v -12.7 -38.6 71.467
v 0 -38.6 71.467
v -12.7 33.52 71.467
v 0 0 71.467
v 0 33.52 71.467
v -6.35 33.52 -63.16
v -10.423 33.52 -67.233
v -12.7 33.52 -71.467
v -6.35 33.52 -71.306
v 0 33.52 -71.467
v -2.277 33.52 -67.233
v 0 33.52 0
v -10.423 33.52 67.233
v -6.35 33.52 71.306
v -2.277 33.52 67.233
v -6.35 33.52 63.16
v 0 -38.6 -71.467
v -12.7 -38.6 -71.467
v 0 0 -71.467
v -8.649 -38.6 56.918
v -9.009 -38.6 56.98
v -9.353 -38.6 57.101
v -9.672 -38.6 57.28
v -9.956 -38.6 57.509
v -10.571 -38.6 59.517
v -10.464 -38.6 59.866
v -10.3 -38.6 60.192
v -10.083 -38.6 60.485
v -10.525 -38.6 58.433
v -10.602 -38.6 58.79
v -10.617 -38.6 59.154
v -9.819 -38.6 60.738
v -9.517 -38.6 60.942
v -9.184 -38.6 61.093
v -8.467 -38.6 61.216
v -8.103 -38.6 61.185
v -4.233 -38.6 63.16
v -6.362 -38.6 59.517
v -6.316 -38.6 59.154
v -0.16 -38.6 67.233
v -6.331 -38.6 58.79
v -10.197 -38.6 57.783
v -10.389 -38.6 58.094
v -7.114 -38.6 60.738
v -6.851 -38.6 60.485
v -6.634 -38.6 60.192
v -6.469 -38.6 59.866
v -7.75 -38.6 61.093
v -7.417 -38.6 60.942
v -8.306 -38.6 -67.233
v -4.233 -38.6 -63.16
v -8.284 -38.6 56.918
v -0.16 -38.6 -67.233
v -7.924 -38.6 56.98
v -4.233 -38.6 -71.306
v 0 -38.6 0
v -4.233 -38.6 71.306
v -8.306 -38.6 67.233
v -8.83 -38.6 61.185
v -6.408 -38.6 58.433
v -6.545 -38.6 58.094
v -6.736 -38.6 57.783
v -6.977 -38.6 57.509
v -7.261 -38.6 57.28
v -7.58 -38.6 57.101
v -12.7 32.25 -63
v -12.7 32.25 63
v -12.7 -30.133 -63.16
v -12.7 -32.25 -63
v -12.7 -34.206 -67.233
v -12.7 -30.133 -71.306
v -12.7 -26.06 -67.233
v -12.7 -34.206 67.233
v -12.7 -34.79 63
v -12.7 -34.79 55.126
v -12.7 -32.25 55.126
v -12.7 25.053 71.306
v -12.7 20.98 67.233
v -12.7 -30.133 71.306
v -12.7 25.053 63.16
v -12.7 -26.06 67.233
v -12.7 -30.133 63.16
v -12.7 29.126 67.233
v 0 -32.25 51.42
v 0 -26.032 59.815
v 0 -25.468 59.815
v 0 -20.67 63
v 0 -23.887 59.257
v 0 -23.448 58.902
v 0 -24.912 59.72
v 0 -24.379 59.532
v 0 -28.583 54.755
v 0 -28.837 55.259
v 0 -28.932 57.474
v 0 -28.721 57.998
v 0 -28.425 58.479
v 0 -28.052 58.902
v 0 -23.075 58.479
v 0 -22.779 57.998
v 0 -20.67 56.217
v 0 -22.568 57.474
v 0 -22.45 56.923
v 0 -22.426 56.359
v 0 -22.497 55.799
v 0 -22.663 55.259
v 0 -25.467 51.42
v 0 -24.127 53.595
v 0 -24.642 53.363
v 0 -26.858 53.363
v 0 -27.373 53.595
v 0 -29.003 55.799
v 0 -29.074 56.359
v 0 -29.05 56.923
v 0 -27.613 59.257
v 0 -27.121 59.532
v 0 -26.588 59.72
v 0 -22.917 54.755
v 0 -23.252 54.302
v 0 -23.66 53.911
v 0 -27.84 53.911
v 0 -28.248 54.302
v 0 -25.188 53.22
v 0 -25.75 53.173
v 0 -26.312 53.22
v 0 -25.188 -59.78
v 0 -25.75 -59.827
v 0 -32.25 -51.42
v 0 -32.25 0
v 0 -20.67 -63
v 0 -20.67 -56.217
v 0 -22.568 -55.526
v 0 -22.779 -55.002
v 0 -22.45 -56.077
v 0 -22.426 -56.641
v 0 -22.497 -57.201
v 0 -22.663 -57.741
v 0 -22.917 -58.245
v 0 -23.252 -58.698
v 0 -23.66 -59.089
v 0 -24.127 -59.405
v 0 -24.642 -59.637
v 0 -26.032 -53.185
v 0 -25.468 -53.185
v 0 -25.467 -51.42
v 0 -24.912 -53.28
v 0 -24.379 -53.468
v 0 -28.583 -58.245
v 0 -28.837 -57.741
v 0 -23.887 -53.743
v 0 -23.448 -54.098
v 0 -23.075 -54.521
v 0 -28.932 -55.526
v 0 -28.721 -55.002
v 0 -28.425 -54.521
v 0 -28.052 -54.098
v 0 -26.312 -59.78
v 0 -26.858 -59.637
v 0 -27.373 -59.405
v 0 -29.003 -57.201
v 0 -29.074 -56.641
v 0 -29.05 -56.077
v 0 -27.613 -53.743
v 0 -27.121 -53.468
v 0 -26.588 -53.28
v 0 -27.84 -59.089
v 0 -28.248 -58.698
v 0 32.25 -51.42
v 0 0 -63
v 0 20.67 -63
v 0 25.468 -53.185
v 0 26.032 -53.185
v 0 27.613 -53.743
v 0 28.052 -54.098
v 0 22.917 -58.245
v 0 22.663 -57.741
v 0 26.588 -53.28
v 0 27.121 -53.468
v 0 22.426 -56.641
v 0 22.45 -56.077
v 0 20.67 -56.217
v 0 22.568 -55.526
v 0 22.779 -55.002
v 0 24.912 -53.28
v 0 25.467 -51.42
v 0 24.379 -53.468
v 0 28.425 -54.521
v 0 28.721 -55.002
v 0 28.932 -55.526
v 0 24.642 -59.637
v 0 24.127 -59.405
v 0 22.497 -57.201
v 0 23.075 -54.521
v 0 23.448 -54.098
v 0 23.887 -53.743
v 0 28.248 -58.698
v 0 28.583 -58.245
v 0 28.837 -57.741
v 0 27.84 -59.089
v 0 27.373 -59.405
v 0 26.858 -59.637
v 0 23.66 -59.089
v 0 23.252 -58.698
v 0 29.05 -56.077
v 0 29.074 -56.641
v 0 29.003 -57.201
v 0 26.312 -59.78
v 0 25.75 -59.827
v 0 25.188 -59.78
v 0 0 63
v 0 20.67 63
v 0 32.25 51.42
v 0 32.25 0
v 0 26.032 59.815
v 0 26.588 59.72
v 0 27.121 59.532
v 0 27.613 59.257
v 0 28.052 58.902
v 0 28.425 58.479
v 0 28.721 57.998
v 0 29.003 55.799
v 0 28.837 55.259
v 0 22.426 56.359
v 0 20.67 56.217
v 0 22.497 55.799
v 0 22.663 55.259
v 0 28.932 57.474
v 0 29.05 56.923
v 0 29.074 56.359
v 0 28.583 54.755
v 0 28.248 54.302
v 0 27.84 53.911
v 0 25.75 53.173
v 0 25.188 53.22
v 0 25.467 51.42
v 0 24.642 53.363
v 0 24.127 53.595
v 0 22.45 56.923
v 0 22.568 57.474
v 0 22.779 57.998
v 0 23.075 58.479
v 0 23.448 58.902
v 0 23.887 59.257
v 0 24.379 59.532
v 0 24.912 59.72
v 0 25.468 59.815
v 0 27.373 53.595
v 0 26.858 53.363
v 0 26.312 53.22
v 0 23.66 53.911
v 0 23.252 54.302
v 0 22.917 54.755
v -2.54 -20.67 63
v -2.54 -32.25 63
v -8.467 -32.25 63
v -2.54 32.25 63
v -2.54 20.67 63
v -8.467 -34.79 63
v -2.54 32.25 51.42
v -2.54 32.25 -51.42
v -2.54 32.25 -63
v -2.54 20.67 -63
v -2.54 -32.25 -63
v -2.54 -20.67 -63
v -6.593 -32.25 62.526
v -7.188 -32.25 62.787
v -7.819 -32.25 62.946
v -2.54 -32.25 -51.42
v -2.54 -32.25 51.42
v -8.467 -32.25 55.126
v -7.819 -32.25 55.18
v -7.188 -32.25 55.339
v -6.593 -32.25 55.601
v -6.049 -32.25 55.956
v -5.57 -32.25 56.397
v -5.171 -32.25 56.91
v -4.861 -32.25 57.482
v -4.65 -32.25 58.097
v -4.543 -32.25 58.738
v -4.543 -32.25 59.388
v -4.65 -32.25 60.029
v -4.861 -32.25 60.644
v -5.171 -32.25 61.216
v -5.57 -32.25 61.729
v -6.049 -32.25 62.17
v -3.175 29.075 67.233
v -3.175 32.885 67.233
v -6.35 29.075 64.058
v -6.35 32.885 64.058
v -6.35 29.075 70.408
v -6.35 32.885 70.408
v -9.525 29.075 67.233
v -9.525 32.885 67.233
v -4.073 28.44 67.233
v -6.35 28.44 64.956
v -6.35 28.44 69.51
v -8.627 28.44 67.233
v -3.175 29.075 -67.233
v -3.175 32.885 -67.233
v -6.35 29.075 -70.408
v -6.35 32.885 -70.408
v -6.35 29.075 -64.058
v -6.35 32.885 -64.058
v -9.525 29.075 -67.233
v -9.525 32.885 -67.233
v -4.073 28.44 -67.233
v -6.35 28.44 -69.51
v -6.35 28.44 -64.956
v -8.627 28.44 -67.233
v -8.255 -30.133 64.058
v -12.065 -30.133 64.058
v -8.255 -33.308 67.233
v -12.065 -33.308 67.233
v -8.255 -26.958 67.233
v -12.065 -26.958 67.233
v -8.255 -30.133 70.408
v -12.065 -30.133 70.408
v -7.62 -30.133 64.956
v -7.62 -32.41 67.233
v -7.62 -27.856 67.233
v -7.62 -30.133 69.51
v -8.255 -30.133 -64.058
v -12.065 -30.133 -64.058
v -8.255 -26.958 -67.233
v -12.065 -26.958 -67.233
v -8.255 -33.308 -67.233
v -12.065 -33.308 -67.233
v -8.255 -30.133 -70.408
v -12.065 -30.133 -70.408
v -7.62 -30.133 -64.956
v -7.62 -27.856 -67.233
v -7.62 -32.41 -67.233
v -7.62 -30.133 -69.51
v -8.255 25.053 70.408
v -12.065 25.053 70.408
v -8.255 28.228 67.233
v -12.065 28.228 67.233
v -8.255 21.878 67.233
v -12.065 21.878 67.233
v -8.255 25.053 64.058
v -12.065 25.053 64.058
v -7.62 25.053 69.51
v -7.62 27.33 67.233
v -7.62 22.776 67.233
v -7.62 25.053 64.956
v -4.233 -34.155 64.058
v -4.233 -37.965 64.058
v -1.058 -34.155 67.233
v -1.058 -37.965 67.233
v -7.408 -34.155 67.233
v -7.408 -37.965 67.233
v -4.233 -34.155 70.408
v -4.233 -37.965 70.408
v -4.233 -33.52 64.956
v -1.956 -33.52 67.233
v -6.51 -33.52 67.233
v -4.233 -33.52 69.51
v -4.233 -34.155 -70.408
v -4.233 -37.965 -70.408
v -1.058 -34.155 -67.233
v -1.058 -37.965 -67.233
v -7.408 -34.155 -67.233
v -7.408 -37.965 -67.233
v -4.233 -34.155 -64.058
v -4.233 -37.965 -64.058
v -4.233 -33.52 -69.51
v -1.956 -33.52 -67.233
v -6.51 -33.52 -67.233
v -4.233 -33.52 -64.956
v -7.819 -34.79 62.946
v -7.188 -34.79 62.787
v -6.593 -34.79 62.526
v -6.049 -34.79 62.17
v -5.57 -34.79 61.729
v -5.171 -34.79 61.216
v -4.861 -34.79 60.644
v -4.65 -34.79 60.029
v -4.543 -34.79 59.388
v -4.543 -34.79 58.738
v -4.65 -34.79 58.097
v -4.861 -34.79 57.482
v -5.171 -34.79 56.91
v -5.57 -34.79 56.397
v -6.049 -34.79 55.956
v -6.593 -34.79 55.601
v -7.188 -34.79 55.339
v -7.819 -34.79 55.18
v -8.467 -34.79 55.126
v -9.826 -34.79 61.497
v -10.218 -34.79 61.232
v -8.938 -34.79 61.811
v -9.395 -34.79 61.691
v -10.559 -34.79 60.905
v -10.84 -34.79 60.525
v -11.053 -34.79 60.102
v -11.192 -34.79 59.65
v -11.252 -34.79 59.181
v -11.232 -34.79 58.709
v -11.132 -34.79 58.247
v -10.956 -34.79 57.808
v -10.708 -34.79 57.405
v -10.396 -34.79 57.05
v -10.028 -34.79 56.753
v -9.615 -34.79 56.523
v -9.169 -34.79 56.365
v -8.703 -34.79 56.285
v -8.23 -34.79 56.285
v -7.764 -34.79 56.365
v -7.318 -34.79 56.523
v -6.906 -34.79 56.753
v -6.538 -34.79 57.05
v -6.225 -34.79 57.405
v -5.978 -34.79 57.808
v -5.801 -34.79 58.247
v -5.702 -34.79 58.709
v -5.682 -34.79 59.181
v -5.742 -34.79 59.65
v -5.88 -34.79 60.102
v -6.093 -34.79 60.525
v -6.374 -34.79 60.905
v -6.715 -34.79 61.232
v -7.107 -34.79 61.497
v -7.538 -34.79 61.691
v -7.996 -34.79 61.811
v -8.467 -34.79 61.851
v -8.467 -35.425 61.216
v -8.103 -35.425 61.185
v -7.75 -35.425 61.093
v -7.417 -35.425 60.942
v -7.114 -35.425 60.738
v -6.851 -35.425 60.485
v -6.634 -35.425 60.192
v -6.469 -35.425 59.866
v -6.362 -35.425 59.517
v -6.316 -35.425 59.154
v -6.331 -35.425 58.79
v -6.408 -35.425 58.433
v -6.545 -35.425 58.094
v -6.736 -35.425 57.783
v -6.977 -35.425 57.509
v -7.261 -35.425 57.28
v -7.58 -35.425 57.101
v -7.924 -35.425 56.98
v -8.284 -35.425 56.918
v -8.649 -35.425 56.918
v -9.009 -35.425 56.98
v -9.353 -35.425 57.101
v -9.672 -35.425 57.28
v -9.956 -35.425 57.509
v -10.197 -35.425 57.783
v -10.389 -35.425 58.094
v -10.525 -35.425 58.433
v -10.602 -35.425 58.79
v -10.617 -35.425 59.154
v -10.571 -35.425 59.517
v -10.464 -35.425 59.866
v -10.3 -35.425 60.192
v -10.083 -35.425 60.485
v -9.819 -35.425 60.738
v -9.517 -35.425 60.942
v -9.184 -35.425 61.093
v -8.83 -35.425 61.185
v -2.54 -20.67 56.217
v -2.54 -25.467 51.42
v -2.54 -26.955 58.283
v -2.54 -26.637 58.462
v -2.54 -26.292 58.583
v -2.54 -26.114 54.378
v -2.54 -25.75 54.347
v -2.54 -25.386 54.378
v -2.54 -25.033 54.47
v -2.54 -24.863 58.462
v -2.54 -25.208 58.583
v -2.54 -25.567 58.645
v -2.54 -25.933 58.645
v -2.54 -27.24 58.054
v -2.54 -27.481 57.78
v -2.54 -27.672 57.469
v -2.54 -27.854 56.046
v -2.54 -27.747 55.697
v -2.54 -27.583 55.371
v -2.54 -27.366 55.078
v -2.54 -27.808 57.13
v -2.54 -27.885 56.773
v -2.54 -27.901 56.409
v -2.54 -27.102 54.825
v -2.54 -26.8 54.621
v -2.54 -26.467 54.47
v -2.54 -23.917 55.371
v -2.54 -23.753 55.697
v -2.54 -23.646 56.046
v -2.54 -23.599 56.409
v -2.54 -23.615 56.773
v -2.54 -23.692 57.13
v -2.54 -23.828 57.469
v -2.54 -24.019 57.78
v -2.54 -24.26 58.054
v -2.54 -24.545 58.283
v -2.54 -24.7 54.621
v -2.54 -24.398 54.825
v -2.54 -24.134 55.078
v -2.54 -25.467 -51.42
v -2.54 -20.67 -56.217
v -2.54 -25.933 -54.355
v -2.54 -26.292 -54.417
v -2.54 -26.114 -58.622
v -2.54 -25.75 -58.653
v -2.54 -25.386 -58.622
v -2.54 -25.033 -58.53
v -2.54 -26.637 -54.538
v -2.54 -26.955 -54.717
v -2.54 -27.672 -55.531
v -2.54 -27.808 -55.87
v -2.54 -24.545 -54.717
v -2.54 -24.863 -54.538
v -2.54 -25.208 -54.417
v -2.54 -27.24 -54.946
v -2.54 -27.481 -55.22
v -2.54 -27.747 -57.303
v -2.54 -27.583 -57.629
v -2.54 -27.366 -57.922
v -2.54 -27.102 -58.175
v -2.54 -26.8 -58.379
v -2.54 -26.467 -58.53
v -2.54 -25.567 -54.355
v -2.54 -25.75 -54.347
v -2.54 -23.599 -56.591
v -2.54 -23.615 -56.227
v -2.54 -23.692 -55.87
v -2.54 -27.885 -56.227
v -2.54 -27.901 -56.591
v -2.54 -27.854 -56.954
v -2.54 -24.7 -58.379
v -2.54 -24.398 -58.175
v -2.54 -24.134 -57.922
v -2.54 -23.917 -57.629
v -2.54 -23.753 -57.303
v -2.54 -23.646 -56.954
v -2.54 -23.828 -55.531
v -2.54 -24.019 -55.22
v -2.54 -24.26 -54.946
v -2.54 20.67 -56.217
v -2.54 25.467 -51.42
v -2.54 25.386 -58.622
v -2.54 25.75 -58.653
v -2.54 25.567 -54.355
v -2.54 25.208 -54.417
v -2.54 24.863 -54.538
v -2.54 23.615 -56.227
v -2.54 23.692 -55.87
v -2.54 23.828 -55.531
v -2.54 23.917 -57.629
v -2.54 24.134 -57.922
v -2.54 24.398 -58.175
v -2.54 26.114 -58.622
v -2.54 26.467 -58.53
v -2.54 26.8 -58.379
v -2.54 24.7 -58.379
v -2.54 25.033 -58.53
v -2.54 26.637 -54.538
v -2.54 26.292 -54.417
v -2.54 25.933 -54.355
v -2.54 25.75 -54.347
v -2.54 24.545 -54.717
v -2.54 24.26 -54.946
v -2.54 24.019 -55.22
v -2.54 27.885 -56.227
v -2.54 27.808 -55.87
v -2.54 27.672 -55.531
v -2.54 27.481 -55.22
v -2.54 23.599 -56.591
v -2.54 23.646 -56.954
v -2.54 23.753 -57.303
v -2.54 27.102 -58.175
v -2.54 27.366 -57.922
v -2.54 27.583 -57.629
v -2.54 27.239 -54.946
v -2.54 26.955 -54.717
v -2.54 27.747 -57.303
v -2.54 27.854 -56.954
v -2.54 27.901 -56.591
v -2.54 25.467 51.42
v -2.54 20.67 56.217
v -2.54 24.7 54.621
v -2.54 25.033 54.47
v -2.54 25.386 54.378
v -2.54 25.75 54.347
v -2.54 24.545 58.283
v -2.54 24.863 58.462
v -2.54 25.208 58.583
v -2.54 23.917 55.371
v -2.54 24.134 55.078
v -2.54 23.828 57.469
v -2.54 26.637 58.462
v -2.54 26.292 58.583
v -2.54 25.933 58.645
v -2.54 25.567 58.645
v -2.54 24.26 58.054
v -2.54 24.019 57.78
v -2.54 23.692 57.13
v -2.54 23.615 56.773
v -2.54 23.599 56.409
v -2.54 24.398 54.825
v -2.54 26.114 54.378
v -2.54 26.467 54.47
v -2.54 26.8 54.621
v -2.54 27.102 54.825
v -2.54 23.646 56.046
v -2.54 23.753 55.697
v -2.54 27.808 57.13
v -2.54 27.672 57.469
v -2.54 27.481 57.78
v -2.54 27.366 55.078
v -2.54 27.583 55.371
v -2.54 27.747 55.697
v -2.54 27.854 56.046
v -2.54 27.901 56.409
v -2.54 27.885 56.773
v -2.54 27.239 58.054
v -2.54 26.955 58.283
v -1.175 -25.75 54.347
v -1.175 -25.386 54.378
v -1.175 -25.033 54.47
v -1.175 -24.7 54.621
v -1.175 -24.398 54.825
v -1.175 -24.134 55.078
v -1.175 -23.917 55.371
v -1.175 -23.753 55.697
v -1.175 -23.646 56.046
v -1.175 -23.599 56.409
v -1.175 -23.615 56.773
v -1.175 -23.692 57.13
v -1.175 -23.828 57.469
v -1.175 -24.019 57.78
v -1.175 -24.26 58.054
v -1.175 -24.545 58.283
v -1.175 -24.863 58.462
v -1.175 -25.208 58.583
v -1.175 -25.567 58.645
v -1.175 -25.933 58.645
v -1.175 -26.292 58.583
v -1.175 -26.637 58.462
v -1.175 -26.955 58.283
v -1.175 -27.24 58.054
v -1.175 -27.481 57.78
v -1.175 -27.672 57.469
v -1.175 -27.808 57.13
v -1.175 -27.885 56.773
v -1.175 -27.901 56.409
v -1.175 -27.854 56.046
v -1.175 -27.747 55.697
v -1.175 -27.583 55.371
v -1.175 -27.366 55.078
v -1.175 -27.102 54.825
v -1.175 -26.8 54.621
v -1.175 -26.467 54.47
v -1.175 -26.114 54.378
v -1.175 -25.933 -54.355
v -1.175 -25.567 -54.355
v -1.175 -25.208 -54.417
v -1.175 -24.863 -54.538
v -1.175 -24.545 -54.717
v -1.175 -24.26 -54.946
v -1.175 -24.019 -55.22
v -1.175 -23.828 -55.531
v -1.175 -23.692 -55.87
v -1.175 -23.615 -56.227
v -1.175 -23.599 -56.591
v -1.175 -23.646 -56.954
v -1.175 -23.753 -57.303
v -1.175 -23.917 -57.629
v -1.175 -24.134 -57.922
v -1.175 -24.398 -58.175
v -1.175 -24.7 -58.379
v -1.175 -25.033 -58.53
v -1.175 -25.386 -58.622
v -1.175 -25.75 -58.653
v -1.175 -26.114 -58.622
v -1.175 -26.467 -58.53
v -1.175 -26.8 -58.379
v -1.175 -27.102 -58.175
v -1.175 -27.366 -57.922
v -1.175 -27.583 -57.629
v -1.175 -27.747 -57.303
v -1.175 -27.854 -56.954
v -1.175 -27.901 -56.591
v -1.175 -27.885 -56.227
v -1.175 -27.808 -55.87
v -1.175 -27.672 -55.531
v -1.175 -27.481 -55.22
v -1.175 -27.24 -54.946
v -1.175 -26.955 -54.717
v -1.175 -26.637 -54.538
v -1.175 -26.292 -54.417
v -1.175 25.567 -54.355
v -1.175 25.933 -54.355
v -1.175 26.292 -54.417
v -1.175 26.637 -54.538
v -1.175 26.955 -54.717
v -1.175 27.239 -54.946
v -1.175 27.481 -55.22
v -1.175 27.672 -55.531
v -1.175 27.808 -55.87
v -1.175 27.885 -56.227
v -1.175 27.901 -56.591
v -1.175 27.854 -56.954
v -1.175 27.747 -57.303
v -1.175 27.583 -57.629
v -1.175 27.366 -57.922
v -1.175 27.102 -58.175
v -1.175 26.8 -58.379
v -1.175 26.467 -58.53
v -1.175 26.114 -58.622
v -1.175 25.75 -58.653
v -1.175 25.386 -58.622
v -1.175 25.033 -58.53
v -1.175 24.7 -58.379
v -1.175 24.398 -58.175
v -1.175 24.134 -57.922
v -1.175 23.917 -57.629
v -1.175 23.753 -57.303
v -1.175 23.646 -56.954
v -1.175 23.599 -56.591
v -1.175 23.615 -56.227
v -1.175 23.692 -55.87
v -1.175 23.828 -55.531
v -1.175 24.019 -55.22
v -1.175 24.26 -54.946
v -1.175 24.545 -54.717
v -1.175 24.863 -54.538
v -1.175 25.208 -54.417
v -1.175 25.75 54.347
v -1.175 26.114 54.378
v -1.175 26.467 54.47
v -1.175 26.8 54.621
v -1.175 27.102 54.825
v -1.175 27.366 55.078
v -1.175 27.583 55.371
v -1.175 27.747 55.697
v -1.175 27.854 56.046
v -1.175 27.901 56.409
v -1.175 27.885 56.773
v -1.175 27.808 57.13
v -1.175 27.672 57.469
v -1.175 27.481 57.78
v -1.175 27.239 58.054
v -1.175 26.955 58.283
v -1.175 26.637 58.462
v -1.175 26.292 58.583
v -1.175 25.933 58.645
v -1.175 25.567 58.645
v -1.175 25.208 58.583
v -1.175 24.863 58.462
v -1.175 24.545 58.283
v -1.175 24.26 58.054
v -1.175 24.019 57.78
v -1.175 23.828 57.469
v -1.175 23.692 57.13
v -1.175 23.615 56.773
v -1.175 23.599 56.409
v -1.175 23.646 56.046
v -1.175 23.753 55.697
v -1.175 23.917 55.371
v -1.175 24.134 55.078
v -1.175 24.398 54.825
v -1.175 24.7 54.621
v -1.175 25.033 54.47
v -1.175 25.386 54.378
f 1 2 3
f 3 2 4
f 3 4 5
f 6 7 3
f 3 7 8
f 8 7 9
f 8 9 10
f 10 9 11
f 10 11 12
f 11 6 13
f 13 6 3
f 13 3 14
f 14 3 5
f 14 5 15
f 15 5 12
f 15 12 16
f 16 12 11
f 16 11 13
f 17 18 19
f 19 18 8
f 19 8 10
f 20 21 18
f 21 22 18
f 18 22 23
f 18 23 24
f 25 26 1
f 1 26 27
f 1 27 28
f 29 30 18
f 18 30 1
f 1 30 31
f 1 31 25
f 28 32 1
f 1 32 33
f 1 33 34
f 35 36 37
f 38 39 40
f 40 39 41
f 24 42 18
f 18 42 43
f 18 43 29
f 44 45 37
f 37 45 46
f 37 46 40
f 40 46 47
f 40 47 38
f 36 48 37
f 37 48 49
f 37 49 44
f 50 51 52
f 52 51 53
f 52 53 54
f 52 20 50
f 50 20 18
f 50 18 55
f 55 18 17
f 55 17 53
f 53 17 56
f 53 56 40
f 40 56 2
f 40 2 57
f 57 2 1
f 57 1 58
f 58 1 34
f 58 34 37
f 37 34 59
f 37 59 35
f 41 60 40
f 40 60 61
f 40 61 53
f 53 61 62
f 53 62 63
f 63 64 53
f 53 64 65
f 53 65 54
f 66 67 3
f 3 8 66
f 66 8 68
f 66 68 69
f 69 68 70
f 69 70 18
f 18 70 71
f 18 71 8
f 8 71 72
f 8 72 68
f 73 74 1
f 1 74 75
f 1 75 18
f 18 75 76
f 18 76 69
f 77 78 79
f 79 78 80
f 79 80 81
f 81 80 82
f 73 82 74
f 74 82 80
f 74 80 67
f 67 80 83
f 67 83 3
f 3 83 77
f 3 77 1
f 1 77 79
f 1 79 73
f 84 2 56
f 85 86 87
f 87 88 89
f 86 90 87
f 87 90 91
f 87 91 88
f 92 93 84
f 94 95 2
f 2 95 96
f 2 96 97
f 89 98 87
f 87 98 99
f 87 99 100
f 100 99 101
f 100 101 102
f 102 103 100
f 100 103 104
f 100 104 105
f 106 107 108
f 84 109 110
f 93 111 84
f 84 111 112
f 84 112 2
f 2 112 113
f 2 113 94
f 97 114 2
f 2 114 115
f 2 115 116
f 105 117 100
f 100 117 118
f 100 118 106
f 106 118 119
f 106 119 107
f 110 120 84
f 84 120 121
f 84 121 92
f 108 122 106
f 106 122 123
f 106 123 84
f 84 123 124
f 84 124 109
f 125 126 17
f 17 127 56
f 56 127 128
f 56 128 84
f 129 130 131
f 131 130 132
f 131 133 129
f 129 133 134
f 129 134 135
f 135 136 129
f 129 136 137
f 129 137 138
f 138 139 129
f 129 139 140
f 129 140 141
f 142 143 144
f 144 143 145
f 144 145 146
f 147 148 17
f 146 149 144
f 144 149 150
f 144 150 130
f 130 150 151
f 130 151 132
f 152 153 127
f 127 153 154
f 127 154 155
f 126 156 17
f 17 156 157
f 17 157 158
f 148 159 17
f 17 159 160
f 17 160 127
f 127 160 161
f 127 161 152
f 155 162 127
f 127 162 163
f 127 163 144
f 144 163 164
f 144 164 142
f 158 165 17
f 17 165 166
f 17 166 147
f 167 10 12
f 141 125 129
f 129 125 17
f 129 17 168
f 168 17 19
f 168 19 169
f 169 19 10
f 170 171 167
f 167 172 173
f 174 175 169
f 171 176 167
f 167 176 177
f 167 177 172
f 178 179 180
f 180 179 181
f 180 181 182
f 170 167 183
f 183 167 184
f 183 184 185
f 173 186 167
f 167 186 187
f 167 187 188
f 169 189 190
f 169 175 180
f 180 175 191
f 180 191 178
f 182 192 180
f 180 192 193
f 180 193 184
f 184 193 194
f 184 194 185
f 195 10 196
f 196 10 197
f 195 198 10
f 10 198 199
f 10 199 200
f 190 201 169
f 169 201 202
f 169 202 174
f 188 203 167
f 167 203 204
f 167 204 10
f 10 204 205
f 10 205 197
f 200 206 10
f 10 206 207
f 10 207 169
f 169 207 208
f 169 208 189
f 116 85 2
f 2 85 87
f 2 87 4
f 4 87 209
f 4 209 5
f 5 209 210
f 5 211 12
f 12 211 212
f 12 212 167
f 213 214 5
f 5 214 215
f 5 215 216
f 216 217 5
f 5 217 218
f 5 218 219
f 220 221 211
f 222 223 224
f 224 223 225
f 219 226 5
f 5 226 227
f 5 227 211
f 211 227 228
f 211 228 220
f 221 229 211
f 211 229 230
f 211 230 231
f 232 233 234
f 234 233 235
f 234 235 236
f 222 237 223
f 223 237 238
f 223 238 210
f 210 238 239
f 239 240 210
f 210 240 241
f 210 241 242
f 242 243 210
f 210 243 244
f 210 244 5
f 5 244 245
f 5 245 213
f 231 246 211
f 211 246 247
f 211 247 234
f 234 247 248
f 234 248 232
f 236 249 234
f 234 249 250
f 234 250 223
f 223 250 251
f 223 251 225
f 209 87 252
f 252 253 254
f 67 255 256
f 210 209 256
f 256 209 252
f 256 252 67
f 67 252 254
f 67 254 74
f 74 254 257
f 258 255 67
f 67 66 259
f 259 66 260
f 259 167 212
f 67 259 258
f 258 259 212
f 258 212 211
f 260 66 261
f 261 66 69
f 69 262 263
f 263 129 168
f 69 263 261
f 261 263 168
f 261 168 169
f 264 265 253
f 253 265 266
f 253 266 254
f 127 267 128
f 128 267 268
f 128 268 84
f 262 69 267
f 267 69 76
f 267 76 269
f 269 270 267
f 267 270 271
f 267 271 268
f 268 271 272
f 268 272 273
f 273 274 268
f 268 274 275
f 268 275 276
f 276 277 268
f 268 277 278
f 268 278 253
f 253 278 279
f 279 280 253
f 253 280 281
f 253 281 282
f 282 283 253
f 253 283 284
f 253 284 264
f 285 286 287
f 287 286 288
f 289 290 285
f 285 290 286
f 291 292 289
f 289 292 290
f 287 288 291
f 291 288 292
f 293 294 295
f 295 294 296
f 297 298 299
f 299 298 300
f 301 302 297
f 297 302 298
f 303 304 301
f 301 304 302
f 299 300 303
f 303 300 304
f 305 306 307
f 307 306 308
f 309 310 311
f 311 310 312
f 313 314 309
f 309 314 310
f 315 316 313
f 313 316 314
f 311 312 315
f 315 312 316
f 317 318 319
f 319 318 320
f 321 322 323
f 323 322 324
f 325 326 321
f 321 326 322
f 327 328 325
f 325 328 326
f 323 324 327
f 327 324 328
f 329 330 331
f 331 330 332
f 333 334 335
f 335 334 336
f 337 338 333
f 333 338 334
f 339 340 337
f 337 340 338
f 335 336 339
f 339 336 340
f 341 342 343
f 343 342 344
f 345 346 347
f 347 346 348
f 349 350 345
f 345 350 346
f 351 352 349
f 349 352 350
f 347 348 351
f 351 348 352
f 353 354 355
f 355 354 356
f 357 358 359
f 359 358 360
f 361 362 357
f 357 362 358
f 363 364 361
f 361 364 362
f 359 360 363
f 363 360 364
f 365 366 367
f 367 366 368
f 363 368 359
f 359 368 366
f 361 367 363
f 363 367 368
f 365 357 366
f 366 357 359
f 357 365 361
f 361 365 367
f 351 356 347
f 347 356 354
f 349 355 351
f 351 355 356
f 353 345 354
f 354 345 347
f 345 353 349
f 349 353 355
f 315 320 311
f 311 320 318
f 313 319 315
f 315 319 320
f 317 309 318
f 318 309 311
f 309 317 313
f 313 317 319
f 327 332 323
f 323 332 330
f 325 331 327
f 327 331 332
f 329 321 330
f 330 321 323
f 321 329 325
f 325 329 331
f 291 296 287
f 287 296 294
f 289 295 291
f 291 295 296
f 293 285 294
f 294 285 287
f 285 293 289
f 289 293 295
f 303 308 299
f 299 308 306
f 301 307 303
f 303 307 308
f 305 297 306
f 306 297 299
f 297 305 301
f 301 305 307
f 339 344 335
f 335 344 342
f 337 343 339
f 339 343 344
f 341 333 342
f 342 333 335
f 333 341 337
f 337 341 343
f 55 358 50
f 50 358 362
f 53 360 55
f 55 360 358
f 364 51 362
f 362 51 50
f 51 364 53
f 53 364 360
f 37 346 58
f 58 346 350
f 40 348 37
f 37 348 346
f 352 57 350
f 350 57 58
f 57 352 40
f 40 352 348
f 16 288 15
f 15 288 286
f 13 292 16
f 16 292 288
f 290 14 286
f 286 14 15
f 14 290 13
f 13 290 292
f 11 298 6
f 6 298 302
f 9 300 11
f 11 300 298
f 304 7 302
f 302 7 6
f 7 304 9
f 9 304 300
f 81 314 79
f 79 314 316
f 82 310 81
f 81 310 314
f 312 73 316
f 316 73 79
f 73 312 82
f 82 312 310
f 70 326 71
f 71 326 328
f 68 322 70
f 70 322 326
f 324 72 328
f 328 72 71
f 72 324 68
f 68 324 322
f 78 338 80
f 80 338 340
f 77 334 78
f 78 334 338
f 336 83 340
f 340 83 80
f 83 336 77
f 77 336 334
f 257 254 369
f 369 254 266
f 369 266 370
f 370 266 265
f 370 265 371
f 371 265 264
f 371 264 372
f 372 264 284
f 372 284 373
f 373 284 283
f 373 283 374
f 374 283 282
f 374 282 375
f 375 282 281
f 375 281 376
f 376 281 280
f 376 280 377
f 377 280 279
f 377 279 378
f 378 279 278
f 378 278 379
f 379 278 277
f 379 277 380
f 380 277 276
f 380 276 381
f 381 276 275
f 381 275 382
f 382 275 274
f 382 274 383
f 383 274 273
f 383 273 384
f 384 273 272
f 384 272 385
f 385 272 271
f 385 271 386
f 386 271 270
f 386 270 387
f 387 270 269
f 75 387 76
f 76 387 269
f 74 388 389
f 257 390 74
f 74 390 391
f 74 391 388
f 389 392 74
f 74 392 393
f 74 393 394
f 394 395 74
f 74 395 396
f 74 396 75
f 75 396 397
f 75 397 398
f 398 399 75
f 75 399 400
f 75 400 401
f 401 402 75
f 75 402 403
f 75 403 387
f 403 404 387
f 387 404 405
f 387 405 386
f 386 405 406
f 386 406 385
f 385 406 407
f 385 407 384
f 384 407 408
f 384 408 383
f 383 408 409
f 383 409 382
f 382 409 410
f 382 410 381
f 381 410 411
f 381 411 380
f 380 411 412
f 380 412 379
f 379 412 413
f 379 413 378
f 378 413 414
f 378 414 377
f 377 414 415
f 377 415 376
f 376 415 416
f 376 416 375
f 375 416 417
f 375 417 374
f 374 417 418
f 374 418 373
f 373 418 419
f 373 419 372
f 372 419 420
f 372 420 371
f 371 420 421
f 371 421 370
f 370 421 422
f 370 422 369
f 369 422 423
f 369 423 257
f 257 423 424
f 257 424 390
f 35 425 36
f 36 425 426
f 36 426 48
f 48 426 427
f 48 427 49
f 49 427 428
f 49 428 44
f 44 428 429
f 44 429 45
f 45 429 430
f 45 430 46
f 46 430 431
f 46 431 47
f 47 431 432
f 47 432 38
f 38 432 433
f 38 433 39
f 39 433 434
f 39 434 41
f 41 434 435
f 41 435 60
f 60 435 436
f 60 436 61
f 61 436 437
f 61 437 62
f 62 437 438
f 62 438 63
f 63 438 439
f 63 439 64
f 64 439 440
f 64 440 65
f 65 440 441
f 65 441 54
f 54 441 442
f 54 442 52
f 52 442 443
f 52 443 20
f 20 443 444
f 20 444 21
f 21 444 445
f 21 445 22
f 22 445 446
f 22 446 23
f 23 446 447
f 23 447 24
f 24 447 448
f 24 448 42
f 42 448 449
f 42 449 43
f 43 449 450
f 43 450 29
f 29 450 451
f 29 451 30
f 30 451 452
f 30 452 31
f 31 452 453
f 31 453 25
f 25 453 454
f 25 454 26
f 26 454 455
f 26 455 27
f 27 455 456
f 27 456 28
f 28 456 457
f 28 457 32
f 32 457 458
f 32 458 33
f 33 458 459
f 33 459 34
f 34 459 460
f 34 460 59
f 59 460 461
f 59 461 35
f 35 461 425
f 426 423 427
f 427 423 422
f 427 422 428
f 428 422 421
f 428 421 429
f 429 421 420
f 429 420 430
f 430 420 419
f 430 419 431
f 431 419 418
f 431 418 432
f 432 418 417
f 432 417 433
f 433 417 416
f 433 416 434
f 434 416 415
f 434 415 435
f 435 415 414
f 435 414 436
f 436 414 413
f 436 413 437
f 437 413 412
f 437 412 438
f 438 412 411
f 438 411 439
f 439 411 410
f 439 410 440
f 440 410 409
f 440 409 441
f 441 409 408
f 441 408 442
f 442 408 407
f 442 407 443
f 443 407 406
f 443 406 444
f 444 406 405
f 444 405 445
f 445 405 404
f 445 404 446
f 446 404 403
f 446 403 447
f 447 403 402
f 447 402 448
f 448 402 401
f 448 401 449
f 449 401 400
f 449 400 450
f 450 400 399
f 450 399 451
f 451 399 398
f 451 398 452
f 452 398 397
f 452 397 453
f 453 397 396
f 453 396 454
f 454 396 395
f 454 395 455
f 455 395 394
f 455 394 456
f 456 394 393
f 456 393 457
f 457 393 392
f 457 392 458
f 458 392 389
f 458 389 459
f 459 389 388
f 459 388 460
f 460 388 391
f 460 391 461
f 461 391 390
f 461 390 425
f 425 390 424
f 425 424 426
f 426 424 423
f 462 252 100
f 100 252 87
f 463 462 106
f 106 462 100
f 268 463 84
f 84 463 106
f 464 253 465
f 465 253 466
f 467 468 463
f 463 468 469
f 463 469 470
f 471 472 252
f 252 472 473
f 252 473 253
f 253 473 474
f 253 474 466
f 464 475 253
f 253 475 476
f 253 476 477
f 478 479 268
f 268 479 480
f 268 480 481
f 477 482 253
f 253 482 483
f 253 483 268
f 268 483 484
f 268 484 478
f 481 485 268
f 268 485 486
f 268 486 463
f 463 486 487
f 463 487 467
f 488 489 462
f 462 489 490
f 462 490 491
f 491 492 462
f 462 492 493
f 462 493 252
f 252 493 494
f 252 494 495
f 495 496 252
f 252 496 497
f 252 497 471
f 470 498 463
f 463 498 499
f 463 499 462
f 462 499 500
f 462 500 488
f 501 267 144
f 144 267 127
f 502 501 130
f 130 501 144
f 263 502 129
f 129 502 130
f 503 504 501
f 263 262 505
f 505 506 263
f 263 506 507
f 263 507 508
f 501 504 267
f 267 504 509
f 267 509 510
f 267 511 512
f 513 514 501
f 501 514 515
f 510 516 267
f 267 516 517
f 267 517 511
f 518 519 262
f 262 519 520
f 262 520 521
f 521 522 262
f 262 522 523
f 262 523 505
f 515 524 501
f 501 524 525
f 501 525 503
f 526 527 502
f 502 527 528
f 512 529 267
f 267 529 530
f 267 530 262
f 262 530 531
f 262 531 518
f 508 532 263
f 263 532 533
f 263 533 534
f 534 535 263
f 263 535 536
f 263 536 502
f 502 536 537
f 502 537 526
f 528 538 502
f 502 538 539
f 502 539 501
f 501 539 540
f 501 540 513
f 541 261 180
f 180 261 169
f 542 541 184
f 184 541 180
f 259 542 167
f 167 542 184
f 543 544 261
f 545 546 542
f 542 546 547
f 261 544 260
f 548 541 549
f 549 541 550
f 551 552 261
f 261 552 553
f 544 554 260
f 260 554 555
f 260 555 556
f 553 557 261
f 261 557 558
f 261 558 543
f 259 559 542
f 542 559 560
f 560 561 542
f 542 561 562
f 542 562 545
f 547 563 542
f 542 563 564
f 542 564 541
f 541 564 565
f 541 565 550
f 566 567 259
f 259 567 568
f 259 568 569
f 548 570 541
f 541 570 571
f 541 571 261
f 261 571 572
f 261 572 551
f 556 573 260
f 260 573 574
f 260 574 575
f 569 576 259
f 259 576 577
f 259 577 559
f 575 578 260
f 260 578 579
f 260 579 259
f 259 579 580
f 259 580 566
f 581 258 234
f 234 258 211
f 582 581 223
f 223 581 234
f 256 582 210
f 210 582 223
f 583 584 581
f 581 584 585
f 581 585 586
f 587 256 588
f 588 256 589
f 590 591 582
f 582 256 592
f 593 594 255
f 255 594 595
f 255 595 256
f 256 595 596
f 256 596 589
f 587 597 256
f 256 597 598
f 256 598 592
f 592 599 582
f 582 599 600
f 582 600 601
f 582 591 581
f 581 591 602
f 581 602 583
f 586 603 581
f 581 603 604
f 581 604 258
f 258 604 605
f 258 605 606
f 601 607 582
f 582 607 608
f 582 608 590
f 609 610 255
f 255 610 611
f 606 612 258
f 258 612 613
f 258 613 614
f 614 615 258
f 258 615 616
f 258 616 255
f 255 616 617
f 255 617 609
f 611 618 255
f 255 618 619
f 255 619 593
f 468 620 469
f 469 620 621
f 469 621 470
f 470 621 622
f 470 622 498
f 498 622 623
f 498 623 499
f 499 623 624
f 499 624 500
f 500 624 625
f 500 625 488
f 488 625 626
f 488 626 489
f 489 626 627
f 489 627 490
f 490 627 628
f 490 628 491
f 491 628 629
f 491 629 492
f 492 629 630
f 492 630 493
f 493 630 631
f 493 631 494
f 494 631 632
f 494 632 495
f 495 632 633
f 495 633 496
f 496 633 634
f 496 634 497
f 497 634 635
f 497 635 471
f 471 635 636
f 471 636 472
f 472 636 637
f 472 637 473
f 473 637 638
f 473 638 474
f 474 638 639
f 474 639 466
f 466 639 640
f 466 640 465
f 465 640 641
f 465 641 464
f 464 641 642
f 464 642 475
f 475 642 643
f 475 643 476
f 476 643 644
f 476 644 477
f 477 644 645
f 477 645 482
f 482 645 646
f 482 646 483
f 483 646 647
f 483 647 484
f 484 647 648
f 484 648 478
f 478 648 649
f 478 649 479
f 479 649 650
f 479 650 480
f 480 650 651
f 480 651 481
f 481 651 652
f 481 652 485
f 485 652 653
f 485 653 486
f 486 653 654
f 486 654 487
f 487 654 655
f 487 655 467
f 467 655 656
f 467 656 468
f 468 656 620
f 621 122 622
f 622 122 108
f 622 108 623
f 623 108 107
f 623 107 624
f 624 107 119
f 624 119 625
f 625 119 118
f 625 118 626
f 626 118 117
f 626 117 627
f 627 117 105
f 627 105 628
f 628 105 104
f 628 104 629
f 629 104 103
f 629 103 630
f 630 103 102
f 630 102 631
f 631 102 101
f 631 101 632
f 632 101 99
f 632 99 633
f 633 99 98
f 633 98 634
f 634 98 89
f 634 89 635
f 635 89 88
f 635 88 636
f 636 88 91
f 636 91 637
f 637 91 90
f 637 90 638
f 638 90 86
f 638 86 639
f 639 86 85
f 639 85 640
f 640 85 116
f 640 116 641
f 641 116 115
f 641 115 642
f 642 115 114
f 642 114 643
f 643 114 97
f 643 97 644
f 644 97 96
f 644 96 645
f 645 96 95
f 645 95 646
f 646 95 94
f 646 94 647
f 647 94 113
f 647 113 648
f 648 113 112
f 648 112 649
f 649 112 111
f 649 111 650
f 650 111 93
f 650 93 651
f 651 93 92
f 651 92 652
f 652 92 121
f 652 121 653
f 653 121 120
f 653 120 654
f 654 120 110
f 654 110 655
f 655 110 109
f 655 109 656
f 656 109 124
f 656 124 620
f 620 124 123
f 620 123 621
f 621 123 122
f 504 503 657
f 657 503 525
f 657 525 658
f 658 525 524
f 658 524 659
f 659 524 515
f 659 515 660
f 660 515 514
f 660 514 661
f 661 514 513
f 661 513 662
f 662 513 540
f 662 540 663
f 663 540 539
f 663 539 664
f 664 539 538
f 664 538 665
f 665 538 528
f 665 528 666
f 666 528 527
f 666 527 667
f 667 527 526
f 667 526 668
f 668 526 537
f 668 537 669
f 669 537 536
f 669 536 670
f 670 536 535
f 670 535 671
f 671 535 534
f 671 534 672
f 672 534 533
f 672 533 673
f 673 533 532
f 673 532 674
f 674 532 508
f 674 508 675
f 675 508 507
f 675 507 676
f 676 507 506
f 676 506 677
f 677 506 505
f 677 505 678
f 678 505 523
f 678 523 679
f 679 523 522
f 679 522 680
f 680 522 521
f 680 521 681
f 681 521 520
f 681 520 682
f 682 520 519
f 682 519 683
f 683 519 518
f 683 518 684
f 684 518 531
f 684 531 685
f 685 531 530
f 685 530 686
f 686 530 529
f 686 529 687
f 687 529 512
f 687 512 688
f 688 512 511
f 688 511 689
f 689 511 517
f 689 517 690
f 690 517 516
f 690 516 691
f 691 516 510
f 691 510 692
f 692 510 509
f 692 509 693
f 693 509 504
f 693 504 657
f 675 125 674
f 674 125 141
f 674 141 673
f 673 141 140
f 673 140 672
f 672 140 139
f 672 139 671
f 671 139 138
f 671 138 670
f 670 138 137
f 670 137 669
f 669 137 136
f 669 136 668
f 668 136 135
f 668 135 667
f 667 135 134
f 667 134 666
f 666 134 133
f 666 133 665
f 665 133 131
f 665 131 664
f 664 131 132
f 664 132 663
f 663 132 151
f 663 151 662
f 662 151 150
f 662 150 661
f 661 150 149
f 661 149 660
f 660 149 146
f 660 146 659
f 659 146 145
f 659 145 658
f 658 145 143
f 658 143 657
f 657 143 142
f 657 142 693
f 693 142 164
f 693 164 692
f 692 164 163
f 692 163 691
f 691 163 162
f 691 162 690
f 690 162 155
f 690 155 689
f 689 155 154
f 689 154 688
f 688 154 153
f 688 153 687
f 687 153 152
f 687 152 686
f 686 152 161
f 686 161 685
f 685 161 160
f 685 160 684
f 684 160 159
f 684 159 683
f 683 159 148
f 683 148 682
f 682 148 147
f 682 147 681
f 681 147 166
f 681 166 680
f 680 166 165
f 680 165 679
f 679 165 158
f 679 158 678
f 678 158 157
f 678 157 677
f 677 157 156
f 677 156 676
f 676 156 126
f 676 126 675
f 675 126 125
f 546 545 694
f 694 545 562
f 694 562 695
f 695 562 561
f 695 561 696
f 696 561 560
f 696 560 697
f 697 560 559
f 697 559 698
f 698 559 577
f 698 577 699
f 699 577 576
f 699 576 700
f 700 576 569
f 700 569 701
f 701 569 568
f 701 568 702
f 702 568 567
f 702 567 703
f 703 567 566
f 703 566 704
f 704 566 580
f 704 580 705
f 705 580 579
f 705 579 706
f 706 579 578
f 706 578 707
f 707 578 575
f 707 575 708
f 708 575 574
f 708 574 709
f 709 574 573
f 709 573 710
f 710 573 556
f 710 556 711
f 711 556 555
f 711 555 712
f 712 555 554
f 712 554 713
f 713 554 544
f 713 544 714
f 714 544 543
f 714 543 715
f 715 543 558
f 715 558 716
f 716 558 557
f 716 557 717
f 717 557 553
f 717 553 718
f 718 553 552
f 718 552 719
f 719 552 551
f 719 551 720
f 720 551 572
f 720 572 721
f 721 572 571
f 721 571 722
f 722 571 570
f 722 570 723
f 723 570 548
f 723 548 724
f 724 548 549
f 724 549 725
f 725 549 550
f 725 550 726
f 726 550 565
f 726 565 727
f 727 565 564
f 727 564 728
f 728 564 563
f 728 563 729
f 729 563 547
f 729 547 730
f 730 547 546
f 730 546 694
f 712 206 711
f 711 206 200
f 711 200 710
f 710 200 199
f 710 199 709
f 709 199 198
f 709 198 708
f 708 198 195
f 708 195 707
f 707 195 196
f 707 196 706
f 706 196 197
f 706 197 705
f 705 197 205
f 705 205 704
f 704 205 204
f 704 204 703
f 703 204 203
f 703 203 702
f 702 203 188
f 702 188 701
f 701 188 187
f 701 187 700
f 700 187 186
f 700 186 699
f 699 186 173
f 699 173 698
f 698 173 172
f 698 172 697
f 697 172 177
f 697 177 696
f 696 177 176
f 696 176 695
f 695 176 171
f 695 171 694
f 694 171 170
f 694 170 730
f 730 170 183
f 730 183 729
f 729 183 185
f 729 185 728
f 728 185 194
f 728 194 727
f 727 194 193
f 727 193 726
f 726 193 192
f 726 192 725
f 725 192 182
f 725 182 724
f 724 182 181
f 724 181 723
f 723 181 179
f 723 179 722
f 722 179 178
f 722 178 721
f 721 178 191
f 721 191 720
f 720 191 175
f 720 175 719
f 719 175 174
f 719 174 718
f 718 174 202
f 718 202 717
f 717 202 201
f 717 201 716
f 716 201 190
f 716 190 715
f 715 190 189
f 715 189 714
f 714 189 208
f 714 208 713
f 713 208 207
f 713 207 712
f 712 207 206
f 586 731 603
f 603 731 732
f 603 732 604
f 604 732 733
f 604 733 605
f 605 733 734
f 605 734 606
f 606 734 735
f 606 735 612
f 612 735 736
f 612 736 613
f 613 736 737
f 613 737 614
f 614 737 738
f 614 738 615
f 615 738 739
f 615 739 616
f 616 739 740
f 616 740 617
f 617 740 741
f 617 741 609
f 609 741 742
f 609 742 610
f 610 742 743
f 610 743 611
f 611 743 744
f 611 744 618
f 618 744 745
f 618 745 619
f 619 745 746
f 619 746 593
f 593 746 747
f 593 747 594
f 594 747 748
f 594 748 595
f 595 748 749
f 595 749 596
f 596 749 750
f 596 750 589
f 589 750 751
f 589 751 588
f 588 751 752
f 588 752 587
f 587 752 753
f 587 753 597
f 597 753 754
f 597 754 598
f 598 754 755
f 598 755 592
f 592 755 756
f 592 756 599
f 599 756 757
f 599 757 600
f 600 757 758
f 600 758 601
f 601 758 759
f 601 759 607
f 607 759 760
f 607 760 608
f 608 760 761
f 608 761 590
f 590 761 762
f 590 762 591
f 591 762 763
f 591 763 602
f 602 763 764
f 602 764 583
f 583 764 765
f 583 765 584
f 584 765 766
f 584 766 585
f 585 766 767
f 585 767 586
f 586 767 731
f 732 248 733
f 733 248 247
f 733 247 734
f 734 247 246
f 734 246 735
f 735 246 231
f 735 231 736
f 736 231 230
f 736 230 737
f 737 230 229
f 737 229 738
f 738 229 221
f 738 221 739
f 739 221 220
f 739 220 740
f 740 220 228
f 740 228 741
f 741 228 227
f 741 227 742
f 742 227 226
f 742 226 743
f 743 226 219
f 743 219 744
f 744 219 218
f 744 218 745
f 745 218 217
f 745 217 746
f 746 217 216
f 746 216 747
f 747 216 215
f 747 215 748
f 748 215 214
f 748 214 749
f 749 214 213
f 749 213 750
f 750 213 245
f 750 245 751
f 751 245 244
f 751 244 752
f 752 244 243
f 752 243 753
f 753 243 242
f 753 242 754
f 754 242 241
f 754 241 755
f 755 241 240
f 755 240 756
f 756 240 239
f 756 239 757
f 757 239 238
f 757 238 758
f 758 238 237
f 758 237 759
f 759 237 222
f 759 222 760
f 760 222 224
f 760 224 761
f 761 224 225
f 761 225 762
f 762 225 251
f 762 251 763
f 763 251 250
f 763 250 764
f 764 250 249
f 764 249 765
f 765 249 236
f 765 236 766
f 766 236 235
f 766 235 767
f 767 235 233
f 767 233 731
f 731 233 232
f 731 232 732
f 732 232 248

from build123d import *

# Parameters (mm, degrees)
SKETCH1_W                              = 142.9333456
SKETCH1_H                              = 72.120000116
SKETCH1_W_2                            = 126.000012266
SKETCH1_H_2                            = 64.500000116
BOSS_EXTRUDE1_DEPTH                    = 12.7
CUT_EXTRUDE1_DEPTH                     = 5.08
CUT_EXTRUDE2_DEPTH                     = 5.08
CUT_EXTRUDE3_DEPTH                     = 5.08
CHAMFER1_SIZE                          = 0.635
CUT_EXTRUDE4_DEPTH                     = 2.54
F_18_0_1695_DIAMETER_HOLE1_D           = 4.3053
F_18_0_1695_DIAMETER_HOLE1_DEPTH       = 3.81
F_18_0_1695_DIAMETER_HOLE1_CSINK_D     = 5.5753
F_18_0_1695_DIAMETER_HOLE1_CSINK_ANGLE = 90
BOSS_EXTRUDE2_DEPTH                    = 2.54
F_6_CLEARANCE_HOLE1_D                  = 4.3053
F_6_CLEARANCE_HOLE1_CSINK_D            = 6.6548
F_6_CLEARANCE_HOLE1_CSINK_ANGLE        = 90


with BuildPart() as part:
    # Sketch1 → Boss-Extrude1 (new body)
    with BuildSketch(Plane(origin=(0, 0, 0), x_dir=(0, 0, -1), z_dir=(1, 0, 0))):
        with Locations((0, -2.54)):
            Rectangle(SKETCH1_W, SKETCH1_H)
        Rectangle(SKETCH1_W_2, SKETCH1_H_2, mode=Mode.SUBTRACT)
    extrude(amount=-BOSS_EXTRUDE1_DEPTH)

    # Sketch2 → Cut-Extrude1 (cut)
    with BuildSketch(Plane(origin=(0, 33.520000058, 0), x_dir=(1, 0, 0), z_dir=(0, 1, 0))):
        Polygon((-3.175, 67.233339467), (-6.35, 64.058339467), (-9.525, 67.233339467), (-6.35, 70.408339467), align=None)
        Polygon((-3.175, -67.233339467), (-6.35, -70.408339467), (-9.525, -67.233339467), (-6.35, -64.058339467), align=None)
    extrude(amount=-CUT_EXTRUDE1_DEPTH, mode=Mode.SUBTRACT)

    # Sketch3 → Cut-Extrude2 (cut)
    with BuildSketch(Plane.ZY.offset(12.7)):
        Polygon((70.408339467, 25.053333392), (67.233339467, 21.878333392), (64.058339467, 25.053333392), (67.233339467, 28.228333392), align=None)
        Polygon((-64.058339467, -30.133333392), (-67.233339467, -33.308333392), (-70.408339467, -30.133333392), (-67.233339467, -26.958333392), align=None)
        Polygon((64.058339467, -30.133333392), (67.233339467, -26.958333392), (70.408339467, -30.133333392), (67.233339467, -33.308333392), align=None)
    extrude(amount=-CUT_EXTRUDE2_DEPTH, mode=Mode.SUBTRACT)

    # Sketch5 → Cut-Extrude3 (cut)
    with BuildSketch(Plane.XZ.offset(38.600000058)):
        Polygon((-4.233333333, -70.408339467), (-7.408333333, -67.233339467), (-4.233333333, -64.058339467), (-1.058333333, -67.233339467), align=None)
        Polygon((-4.233333333, 64.058339467), (-7.408333333, 67.233339467), (-4.233333333, 70.408339467), (-1.058333333, 67.233339467), align=None)
    extrude(amount=-CUT_EXTRUDE3_DEPTH, mode=Mode.SUBTRACT)

    # Chamfer1
    chamfer1_edges = [part.edges().sort_by_distance(p)[0] for p in [
        (-2.645833333, -33.520000058, -68.820839467),
        (-5.820833333, -33.520000058, -68.820839467),
        (-5.820833333, -33.520000058, -65.645839467),
        (-2.645833333, -33.520000058, -65.645839467),
        (-2.645833333, -38.600000058, -68.820839467),
        (-2.645833333, -38.600000058, -65.645839467),
        (-5.820833333, -38.600000058, -65.645839467),
        (-5.820833333, -38.600000058, -68.820839467),
        (-2.645833333, -33.520000058, 65.645839467),
        (-5.820833333, -33.520000058, 65.645839467),
        (-5.820833333, -33.520000058, 68.820839467),
        (-2.645833333, -33.520000058, 68.820839467),
        (-2.645833333, -38.600000058, 65.645839467),
        (-2.645833333, -38.600000058, 68.820839467),
        (-5.820833333, -38.600000058, 68.820839467),
        (-5.820833333, -38.600000058, 65.645839467),
        (-4.7625, 28.440000058, -68.820839467),
        (-4.7625, 28.440000058, -65.645839467),
        (-7.9375, 28.440000058, -65.645839467),
        (-7.9375, 28.440000058, -68.820839467),
        (-4.7625, 33.520000058, -68.820839467),
        (-7.9375, 33.520000058, -68.820839467),
        (-7.9375, 33.520000058, -65.645839467),
        (-4.7625, 33.520000058, -65.645839467),
        (-4.7625, 28.440000058, 65.645839467),
        (-4.7625, 28.440000058, 68.820839467),
        (-7.9375, 28.440000058, 68.820839467),
        (-7.9375, 28.440000058, 65.645839467),
        (-4.7625, 33.520000058, 65.645839467),
        (-7.9375, 33.520000058, 65.645839467),
        (-7.9375, 33.520000058, 68.820839467),
        (-4.7625, 33.520000058, 68.820839467),
        (-7.62, 26.640833392, 68.820839467),
        (-7.62, 23.465833392, 68.820839467),
        (-7.62, 23.465833392, 65.645839467),
        (-7.62, 26.640833392, 65.645839467),
        (-12.7, 26.640833392, 68.820839467),
        (-12.7, 26.640833392, 65.645839467),
        (-12.7, 23.465833392, 65.645839467),
        (-12.7, 23.465833392, 68.820839467),
        (-7.62, -28.545833392, -65.645839467),
        (-7.62, -31.720833392, -65.645839467),
        (-7.62, -31.720833392, -68.820839467),
        (-7.62, -28.545833392, -68.820839467),
        (-12.7, -28.545833392, -65.645839467),
        (-12.7, -28.545833392, -68.820839467),
        (-12.7, -31.720833392, -68.820839467),
        (-12.7, -31.720833392, -65.645839467),
        (-7.62, -31.720833392, 65.645839467),
        (-7.62, -28.545833392, 65.645839467),
        (-7.62, -28.545833392, 68.820839467),
        (-7.62, -31.720833392, 68.820839467),
        (-12.7, -31.720833392, 65.645839467),
        (-12.7, -31.720833392, 68.820839467),
        (-12.7, -28.545833392, 68.820839467),
        (-12.7, -28.545833392, 65.645839467),
    ]]
    chamfer(chamfer1_edges, length=CHAMFER1_SIZE)

    # Sketch6 → Cut-Extrude4 (cut)
    with BuildSketch(Plane(origin=(0, -32.250000058, 0), x_dir=(1, 0, 0), z_dir=(0, 1, 0))):
        with BuildLine():
            Line((-8.466666582, -55.126006133), (-12.7, -55.126006133))
            Line((-12.7, -55.126006133), (-12.7, -63.000006133))
            Line((-12.7, -63.000006133), (-8.466666582, -63.000006133))
            ThreePointArc((-8.466666582, -63.000006133), (-4.529666582, -59.063006133), (-8.466666582, -55.126006133))
        make_face()
    extrude(amount=-CUT_EXTRUDE4_DEPTH, mode=Mode.SUBTRACT)

    # #18 (0.1695) Diameter Hole1
    with Locations(Plane(origin=(0, -34.790000058, 0), x_dir=(1, 0, 0), z_dir=(0, 1, 0))):
        with Locations((-8.466666582, -59.063006133)):
            CounterSinkHole(F_18_0_1695_DIAMETER_HOLE1_D / 2, F_18_0_1695_DIAMETER_HOLE1_CSINK_D / 2, depth=F_18_0_1695_DIAMETER_HOLE1_DEPTH, counter_sink_angle=F_18_0_1695_DIAMETER_HOLE1_CSINK_ANGLE)

    # Sketch9 → Boss-Extrude2 (add)
    with BuildSketch(Plane(origin=(0, 0, 0), x_dir=(0, 0, -1), z_dir=(1, 0, 0))):
        Polygon((-63.000006133, 20.669993925), (-56.216595593, 20.669993925), (-51.42, 25.466589518), (-51.42, 32.250000058), (-63.000006133, 32.250000058), align=None)
        Polygon((-63.000006133, -20.669993925), (-56.216595593, -20.669993925), (-51.42, -25.466589518), (-51.42, -32.250000058), (-63.000006133, -32.250000058), align=None)
        Polygon((51.42, -32.250000058), (51.42, -25.466589518), (56.216595593, -20.669993925), (63.000006133, -20.669993925), (63.000006133, -32.250000058), align=None)
        Polygon((51.42, 32.250000058), (51.42, 25.466589518), (56.216595593, 20.669993925), (63.000006133, 20.669993925), (63.000006133, 32.250000058), align=None)
    extrude(amount=-BOSS_EXTRUDE2_DEPTH)

    # #6 Clearance Hole1 (through all)
    with Locations(Plane(origin=(0, 0, 0), x_dir=(0, 0, -1), z_dir=(1, 0, 0))):
        with Locations((-56.5, 25.75), (56.5, 25.75), (56.5, -25.75), (-56.5, -25.75)):
            CounterSinkHole(F_6_CLEARANCE_HOLE1_D / 2, F_6_CLEARANCE_HOLE1_CSINK_D / 2, counter_sink_angle=F_6_CLEARANCE_HOLE1_CSINK_ANGLE)


solid = part.part
